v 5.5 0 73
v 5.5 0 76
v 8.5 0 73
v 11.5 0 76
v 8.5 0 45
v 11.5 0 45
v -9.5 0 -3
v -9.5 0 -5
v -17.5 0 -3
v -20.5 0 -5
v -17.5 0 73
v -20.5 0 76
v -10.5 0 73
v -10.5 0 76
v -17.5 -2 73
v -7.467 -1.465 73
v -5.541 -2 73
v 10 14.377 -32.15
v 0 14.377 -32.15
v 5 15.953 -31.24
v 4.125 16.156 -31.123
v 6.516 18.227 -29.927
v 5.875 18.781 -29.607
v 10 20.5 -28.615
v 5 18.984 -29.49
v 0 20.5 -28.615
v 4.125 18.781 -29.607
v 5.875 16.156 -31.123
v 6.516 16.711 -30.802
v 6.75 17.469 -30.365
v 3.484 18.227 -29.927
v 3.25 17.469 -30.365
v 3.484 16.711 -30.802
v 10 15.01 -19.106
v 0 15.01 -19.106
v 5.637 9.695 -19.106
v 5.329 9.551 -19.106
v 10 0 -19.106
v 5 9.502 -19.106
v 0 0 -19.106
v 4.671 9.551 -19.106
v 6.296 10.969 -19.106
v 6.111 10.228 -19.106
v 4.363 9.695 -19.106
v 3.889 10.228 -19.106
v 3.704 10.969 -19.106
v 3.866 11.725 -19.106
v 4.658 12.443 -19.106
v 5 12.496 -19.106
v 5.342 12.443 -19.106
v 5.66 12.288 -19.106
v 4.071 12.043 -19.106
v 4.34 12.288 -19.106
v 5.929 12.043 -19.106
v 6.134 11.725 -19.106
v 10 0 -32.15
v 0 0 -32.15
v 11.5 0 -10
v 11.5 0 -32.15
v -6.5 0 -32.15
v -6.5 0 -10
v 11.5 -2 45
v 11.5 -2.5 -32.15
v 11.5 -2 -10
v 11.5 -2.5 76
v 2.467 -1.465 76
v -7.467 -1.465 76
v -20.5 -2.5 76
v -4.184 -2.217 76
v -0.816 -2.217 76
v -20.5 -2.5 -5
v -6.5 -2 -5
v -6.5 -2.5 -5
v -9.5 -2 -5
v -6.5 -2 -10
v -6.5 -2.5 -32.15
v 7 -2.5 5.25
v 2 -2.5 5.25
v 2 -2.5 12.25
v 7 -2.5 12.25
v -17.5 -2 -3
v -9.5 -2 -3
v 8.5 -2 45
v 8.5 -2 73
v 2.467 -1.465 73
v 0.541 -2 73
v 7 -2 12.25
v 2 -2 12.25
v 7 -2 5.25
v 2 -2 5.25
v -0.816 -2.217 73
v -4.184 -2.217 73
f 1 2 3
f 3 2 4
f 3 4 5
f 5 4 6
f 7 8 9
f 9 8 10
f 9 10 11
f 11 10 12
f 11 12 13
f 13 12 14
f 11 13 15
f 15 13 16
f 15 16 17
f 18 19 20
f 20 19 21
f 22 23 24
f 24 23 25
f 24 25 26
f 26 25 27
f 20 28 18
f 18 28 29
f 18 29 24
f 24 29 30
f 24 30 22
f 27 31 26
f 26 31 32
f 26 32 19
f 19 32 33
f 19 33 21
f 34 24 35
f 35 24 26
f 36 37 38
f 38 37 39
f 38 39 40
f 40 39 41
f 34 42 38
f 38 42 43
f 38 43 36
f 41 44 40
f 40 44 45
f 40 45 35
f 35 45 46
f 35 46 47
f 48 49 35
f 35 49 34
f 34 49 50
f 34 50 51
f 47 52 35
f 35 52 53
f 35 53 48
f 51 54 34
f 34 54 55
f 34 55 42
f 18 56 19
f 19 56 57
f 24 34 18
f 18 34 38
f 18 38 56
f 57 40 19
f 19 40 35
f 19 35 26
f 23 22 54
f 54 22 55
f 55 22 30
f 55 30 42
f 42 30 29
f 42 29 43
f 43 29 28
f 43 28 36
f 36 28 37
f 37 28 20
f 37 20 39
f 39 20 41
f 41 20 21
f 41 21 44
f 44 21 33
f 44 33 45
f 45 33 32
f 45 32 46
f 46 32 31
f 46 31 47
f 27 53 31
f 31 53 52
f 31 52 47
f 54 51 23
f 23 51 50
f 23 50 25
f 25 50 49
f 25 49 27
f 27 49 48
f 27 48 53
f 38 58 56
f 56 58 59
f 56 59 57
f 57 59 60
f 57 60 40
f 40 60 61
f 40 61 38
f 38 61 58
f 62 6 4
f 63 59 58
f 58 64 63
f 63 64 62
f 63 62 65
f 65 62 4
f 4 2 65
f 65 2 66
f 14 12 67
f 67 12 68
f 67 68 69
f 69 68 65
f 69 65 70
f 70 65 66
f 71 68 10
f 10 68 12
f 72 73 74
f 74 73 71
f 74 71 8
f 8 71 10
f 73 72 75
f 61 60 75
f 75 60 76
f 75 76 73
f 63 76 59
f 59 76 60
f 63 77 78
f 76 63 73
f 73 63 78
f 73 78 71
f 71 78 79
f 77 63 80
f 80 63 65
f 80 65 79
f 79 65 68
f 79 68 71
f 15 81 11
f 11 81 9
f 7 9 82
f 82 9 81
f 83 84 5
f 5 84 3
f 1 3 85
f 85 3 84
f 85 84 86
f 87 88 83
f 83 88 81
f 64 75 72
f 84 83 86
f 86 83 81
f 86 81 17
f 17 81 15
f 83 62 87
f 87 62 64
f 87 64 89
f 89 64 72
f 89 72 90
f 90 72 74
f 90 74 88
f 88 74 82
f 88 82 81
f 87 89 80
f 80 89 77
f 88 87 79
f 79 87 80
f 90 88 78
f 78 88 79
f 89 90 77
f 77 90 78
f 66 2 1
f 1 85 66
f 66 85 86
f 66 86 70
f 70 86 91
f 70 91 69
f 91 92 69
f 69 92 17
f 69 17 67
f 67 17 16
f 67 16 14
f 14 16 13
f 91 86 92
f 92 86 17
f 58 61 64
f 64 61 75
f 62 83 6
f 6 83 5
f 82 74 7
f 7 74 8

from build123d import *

# Parameters (mm, degrees)
BOSS_EXTRUDE1_DEPTH = 10
SKETCH2_R           = 1.75
CUT_EXTRUDE1_DEPTH  = 35
DRAFT1_ANGLE        = 2
BOSS_EXTRUDE2_DEPTH = 2.5
SKETCH6_W           = 26
SKETCH6_H           = 76
CUT_EXTRUDE4_DEPTH  = 2
SKETCH7_W           = 5
SKETCH7_H           = 7
CUT_EXTRUDE5_DEPTH  = 1
CUT_EXTRUDE6_DEPTH  = 5
SKETCH9_W           = 21
SKETCH9_H           = 55
CUT_EXTRUDE7_DEPTH  = 2


with BuildPart() as part:
    # Sketch1 → Boss-Extrude1 (new body)
    with BuildSketch(Plane(origin=(0, 0, 0), x_dir=(0, 0, -1), z_dir=(1, 0, 0))):
        Polygon((19.10611554, 15.010195009), (28.614736708, 20.5), (32.149736708, 14.377200395), (32.149736708, 0), (19.10611554, 0), align=None)
    extrude(amount=BOSS_EXTRUDE1_DEPTH)

    # Sketch2 → Cut-Extrude1 (cut)
    with BuildSketch(Plane(origin=(0, 17.515544456, -30.33781292), x_dir=(1, 0, 0), z_dir=(0, 0.5000000000000014, -0.8660254037844378))):
        with Locations(Location((5, 0.053847576, 0), (0, 0, 270))):
            Circle(SKETCH2_R)
    extrude(amount=-CUT_EXTRUDE1_DEPTH, mode=Mode.SUBTRACT)

    # Draft1
    draft1_faces = [part.faces().sort_by_distance(p)[0] for p in [
        (5, 12.426932649, -25.131773882),
    ]]
    draft(draft1_faces, Plane(origin=(10, 20.5, -28.614736708), x_dir=(0, -0.8660254037844377, -0.5000000000000018), z_dir=(0, 0.5000000000000017, -0.8660254037844376)), DRAFT1_ANGLE)

    # Sketch5 → Boss-Extrude2 (add)
    with BuildSketch(Plane.XZ):
        Polygon((11.5, 76), (-20.5, 76), (-20.5, -5), (-6.5, -5), (-6.5, -32.15), (11.5, -32.15), align=None)
    extrude(amount=BOSS_EXTRUDE2_DEPTH)

    # Sketch6 → Cut-Extrude4 (cut)
    with BuildSketch(Plane(origin=(0, 0, 0), x_dir=(1, 0, 0), z_dir=(0, 1, 0))):
        with Locations((-4.5, -35)):
            Rectangle(SKETCH6_W, SKETCH6_H)
    extrude(amount=-CUT_EXTRUDE4_DEPTH, mode=Mode.SUBTRACT)

    # Sketch7 → Cut-Extrude5 (cut)
    with BuildSketch(Plane(origin=(0, -2, 0), x_dir=(1, 0, 0), z_dir=(0, 1, 0))):
        with Locations((4.5, -8.75)):
            Rectangle(SKETCH7_W, SKETCH7_H)
    extrude(amount=-CUT_EXTRUDE5_DEPTH, mode=Mode.SUBTRACT)

    # Sketch8 → Cut-Extrude6 (cut)
    with BuildSketch(Plane(origin=(0, 0, 73), x_dir=(-1, 0, 0), z_dir=(0, 0, -1))):
        with BuildLine():
            Line((-5.5, 0), (10.5, 0))
            ThreePointArc((10.5, 0), (2.5, -2.31142246), (-5.5, 0))
        make_face()
    extrude(amount=-CUT_EXTRUDE6_DEPTH, mode=Mode.SUBTRACT)

    # Sketch9 → Cut-Extrude7 (cut)
    with BuildSketch(Plane(origin=(0, 0, 0), x_dir=(1, 0, 0), z_dir=(0, 1, 0))):
        with Locations((1, -17.5)):
            Rectangle(SKETCH9_W, SKETCH9_H)
    extrude(amount=-CUT_EXTRUDE7_DEPTH, mode=Mode.SUBTRACT)


solid = part.part
